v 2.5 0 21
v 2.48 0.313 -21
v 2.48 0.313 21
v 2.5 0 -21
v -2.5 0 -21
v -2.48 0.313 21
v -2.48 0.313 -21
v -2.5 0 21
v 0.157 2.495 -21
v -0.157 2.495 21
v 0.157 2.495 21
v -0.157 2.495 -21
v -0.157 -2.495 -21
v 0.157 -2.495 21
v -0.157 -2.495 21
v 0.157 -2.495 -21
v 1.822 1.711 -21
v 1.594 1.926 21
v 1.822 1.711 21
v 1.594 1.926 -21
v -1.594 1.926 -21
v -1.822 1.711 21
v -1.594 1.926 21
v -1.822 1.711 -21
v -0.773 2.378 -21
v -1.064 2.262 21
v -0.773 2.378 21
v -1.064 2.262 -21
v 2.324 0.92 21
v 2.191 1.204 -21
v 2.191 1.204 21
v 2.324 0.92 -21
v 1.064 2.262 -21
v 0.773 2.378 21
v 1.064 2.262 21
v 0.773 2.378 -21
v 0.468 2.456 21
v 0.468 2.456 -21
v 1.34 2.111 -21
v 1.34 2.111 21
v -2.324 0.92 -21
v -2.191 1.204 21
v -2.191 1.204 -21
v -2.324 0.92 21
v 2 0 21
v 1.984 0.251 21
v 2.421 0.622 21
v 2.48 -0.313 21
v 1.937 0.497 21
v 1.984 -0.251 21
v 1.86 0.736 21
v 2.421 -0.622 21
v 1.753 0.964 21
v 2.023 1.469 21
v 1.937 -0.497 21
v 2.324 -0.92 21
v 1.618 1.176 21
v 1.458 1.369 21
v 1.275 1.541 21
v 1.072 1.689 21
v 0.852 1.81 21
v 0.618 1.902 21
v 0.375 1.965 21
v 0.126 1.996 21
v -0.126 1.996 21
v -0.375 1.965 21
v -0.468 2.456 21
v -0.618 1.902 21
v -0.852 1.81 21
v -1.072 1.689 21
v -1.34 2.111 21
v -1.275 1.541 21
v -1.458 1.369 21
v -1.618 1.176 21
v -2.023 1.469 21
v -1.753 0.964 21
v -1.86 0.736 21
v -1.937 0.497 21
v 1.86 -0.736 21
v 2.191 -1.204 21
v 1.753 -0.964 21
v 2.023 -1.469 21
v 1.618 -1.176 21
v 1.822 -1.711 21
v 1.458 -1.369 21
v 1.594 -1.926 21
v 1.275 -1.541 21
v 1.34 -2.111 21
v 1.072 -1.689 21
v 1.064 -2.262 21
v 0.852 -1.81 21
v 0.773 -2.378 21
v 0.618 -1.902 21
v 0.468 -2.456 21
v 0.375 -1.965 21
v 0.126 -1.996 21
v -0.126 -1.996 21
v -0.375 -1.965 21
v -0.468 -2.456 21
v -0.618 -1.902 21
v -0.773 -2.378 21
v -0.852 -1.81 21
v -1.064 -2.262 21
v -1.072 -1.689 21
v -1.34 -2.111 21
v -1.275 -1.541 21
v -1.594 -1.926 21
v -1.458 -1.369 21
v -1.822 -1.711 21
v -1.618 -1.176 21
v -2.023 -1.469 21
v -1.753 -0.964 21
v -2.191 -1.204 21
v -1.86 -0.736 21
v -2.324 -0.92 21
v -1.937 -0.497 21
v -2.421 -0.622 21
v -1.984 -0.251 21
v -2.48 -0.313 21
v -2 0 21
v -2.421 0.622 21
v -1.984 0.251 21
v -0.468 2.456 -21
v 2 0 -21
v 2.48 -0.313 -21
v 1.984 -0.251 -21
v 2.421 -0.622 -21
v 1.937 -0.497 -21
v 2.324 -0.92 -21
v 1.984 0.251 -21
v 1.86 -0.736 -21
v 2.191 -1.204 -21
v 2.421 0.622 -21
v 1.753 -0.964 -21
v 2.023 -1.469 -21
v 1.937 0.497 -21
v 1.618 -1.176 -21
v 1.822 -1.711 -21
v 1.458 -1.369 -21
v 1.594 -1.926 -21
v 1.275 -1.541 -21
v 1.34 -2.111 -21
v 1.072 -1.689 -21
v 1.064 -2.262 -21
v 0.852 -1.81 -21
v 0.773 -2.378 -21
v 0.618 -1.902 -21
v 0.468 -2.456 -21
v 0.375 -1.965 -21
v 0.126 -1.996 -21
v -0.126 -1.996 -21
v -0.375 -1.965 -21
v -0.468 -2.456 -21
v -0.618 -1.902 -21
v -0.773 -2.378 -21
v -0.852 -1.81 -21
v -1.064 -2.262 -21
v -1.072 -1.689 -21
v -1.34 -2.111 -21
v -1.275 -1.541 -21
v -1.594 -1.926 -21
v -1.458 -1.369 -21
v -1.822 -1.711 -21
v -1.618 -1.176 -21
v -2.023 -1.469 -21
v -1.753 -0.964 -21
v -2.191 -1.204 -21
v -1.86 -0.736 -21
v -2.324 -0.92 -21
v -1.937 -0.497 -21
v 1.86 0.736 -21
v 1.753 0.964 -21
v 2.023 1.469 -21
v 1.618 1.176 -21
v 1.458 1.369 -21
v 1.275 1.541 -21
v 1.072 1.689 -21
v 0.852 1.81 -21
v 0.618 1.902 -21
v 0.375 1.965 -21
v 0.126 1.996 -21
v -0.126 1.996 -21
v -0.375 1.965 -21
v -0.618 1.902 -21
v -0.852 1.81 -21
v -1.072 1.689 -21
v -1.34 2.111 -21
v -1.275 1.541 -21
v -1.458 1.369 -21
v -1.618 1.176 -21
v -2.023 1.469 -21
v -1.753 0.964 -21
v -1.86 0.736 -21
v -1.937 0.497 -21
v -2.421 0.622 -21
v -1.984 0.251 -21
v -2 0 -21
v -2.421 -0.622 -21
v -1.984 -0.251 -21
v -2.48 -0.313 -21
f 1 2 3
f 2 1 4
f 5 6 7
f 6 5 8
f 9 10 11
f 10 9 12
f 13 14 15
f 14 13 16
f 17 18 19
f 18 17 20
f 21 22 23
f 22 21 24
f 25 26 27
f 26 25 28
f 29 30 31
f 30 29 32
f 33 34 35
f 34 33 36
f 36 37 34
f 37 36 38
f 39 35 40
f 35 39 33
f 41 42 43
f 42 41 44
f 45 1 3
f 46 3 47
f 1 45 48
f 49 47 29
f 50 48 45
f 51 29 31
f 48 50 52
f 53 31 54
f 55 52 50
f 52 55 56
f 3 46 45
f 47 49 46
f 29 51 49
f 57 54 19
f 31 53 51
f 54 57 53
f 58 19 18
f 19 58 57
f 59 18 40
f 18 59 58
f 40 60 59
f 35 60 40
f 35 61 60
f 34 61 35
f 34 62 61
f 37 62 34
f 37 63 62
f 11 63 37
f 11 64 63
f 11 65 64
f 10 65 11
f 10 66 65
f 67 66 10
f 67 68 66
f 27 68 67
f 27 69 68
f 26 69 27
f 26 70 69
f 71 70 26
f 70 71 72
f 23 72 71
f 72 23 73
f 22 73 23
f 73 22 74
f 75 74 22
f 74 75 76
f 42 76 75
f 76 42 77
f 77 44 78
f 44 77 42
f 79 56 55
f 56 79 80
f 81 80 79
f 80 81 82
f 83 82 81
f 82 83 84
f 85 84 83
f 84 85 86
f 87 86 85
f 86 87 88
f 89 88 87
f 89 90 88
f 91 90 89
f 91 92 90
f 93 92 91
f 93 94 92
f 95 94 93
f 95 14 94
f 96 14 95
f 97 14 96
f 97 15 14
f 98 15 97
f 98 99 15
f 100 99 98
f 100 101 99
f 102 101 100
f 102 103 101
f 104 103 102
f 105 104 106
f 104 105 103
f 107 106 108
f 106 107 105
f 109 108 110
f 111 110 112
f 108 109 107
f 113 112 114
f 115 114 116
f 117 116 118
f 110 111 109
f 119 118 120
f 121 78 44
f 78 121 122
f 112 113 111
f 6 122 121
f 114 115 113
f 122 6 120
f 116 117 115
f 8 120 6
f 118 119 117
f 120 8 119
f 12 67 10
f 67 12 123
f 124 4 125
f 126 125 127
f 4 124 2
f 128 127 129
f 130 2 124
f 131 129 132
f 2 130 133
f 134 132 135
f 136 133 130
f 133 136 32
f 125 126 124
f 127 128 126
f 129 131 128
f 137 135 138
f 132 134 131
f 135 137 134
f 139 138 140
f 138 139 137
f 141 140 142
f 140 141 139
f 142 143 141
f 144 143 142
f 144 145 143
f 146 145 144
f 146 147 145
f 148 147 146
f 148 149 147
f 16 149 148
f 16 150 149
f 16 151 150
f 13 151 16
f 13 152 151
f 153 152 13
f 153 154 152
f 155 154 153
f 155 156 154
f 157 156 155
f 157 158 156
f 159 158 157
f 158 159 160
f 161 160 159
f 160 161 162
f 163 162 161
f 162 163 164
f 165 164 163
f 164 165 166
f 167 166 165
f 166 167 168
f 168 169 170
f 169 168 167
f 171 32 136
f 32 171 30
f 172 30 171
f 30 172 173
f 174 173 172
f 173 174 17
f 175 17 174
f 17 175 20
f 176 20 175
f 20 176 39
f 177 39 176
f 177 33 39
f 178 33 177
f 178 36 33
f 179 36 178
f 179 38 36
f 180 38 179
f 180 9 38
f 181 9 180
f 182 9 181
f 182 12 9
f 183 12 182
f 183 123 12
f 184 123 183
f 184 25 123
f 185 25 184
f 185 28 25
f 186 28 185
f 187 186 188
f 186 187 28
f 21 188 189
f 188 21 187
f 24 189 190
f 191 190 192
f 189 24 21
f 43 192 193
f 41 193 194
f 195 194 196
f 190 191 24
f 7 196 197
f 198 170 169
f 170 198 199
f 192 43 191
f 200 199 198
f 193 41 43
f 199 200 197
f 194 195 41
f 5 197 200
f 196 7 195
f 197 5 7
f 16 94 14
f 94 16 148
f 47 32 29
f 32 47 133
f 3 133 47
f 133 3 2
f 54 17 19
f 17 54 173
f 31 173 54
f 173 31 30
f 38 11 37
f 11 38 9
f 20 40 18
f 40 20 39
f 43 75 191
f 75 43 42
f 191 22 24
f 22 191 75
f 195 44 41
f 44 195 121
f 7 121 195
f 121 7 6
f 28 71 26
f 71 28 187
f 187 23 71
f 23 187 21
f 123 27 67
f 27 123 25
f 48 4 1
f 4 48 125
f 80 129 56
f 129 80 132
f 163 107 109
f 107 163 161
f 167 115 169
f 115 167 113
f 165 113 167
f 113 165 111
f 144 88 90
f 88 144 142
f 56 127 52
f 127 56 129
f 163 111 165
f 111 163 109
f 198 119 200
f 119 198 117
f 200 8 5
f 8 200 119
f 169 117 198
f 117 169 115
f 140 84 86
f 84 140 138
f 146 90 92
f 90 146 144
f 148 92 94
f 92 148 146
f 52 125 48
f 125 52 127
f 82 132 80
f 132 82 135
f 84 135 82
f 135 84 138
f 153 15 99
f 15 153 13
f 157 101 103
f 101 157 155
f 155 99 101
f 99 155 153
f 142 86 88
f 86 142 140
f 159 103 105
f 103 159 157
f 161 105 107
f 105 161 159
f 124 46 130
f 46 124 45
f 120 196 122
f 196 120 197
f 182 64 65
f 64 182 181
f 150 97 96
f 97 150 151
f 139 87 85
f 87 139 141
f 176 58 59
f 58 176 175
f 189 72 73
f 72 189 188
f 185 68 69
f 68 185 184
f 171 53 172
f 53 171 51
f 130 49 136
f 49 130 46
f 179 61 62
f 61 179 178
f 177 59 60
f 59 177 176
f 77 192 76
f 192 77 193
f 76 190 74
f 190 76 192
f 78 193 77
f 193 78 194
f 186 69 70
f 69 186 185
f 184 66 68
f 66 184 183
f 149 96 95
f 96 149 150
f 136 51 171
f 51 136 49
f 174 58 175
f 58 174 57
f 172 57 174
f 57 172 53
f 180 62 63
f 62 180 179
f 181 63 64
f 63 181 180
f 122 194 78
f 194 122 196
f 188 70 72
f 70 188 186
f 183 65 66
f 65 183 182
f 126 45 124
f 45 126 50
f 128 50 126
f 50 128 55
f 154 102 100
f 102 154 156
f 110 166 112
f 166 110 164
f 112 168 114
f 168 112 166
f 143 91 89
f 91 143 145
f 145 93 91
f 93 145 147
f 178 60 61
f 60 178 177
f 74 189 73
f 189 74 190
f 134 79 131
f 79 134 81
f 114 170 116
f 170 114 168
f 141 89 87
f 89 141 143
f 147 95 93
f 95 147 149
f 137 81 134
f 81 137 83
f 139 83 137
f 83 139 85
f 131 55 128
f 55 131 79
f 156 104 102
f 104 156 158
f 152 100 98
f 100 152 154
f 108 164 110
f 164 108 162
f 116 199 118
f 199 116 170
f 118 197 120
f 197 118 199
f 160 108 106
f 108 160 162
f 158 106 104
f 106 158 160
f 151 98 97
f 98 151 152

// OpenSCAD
$fn = 50;


difference() {
	union() {
		translate(v = [0, 0, -21.0000000000]) {
			cylinder(h = 42, r = 2.5000000000);
		}
	}
	union() {
		translate(v = [0, 0, -100.0000000000]) {
			cylinder(h = 200, r = 2);
		}
	}
}
